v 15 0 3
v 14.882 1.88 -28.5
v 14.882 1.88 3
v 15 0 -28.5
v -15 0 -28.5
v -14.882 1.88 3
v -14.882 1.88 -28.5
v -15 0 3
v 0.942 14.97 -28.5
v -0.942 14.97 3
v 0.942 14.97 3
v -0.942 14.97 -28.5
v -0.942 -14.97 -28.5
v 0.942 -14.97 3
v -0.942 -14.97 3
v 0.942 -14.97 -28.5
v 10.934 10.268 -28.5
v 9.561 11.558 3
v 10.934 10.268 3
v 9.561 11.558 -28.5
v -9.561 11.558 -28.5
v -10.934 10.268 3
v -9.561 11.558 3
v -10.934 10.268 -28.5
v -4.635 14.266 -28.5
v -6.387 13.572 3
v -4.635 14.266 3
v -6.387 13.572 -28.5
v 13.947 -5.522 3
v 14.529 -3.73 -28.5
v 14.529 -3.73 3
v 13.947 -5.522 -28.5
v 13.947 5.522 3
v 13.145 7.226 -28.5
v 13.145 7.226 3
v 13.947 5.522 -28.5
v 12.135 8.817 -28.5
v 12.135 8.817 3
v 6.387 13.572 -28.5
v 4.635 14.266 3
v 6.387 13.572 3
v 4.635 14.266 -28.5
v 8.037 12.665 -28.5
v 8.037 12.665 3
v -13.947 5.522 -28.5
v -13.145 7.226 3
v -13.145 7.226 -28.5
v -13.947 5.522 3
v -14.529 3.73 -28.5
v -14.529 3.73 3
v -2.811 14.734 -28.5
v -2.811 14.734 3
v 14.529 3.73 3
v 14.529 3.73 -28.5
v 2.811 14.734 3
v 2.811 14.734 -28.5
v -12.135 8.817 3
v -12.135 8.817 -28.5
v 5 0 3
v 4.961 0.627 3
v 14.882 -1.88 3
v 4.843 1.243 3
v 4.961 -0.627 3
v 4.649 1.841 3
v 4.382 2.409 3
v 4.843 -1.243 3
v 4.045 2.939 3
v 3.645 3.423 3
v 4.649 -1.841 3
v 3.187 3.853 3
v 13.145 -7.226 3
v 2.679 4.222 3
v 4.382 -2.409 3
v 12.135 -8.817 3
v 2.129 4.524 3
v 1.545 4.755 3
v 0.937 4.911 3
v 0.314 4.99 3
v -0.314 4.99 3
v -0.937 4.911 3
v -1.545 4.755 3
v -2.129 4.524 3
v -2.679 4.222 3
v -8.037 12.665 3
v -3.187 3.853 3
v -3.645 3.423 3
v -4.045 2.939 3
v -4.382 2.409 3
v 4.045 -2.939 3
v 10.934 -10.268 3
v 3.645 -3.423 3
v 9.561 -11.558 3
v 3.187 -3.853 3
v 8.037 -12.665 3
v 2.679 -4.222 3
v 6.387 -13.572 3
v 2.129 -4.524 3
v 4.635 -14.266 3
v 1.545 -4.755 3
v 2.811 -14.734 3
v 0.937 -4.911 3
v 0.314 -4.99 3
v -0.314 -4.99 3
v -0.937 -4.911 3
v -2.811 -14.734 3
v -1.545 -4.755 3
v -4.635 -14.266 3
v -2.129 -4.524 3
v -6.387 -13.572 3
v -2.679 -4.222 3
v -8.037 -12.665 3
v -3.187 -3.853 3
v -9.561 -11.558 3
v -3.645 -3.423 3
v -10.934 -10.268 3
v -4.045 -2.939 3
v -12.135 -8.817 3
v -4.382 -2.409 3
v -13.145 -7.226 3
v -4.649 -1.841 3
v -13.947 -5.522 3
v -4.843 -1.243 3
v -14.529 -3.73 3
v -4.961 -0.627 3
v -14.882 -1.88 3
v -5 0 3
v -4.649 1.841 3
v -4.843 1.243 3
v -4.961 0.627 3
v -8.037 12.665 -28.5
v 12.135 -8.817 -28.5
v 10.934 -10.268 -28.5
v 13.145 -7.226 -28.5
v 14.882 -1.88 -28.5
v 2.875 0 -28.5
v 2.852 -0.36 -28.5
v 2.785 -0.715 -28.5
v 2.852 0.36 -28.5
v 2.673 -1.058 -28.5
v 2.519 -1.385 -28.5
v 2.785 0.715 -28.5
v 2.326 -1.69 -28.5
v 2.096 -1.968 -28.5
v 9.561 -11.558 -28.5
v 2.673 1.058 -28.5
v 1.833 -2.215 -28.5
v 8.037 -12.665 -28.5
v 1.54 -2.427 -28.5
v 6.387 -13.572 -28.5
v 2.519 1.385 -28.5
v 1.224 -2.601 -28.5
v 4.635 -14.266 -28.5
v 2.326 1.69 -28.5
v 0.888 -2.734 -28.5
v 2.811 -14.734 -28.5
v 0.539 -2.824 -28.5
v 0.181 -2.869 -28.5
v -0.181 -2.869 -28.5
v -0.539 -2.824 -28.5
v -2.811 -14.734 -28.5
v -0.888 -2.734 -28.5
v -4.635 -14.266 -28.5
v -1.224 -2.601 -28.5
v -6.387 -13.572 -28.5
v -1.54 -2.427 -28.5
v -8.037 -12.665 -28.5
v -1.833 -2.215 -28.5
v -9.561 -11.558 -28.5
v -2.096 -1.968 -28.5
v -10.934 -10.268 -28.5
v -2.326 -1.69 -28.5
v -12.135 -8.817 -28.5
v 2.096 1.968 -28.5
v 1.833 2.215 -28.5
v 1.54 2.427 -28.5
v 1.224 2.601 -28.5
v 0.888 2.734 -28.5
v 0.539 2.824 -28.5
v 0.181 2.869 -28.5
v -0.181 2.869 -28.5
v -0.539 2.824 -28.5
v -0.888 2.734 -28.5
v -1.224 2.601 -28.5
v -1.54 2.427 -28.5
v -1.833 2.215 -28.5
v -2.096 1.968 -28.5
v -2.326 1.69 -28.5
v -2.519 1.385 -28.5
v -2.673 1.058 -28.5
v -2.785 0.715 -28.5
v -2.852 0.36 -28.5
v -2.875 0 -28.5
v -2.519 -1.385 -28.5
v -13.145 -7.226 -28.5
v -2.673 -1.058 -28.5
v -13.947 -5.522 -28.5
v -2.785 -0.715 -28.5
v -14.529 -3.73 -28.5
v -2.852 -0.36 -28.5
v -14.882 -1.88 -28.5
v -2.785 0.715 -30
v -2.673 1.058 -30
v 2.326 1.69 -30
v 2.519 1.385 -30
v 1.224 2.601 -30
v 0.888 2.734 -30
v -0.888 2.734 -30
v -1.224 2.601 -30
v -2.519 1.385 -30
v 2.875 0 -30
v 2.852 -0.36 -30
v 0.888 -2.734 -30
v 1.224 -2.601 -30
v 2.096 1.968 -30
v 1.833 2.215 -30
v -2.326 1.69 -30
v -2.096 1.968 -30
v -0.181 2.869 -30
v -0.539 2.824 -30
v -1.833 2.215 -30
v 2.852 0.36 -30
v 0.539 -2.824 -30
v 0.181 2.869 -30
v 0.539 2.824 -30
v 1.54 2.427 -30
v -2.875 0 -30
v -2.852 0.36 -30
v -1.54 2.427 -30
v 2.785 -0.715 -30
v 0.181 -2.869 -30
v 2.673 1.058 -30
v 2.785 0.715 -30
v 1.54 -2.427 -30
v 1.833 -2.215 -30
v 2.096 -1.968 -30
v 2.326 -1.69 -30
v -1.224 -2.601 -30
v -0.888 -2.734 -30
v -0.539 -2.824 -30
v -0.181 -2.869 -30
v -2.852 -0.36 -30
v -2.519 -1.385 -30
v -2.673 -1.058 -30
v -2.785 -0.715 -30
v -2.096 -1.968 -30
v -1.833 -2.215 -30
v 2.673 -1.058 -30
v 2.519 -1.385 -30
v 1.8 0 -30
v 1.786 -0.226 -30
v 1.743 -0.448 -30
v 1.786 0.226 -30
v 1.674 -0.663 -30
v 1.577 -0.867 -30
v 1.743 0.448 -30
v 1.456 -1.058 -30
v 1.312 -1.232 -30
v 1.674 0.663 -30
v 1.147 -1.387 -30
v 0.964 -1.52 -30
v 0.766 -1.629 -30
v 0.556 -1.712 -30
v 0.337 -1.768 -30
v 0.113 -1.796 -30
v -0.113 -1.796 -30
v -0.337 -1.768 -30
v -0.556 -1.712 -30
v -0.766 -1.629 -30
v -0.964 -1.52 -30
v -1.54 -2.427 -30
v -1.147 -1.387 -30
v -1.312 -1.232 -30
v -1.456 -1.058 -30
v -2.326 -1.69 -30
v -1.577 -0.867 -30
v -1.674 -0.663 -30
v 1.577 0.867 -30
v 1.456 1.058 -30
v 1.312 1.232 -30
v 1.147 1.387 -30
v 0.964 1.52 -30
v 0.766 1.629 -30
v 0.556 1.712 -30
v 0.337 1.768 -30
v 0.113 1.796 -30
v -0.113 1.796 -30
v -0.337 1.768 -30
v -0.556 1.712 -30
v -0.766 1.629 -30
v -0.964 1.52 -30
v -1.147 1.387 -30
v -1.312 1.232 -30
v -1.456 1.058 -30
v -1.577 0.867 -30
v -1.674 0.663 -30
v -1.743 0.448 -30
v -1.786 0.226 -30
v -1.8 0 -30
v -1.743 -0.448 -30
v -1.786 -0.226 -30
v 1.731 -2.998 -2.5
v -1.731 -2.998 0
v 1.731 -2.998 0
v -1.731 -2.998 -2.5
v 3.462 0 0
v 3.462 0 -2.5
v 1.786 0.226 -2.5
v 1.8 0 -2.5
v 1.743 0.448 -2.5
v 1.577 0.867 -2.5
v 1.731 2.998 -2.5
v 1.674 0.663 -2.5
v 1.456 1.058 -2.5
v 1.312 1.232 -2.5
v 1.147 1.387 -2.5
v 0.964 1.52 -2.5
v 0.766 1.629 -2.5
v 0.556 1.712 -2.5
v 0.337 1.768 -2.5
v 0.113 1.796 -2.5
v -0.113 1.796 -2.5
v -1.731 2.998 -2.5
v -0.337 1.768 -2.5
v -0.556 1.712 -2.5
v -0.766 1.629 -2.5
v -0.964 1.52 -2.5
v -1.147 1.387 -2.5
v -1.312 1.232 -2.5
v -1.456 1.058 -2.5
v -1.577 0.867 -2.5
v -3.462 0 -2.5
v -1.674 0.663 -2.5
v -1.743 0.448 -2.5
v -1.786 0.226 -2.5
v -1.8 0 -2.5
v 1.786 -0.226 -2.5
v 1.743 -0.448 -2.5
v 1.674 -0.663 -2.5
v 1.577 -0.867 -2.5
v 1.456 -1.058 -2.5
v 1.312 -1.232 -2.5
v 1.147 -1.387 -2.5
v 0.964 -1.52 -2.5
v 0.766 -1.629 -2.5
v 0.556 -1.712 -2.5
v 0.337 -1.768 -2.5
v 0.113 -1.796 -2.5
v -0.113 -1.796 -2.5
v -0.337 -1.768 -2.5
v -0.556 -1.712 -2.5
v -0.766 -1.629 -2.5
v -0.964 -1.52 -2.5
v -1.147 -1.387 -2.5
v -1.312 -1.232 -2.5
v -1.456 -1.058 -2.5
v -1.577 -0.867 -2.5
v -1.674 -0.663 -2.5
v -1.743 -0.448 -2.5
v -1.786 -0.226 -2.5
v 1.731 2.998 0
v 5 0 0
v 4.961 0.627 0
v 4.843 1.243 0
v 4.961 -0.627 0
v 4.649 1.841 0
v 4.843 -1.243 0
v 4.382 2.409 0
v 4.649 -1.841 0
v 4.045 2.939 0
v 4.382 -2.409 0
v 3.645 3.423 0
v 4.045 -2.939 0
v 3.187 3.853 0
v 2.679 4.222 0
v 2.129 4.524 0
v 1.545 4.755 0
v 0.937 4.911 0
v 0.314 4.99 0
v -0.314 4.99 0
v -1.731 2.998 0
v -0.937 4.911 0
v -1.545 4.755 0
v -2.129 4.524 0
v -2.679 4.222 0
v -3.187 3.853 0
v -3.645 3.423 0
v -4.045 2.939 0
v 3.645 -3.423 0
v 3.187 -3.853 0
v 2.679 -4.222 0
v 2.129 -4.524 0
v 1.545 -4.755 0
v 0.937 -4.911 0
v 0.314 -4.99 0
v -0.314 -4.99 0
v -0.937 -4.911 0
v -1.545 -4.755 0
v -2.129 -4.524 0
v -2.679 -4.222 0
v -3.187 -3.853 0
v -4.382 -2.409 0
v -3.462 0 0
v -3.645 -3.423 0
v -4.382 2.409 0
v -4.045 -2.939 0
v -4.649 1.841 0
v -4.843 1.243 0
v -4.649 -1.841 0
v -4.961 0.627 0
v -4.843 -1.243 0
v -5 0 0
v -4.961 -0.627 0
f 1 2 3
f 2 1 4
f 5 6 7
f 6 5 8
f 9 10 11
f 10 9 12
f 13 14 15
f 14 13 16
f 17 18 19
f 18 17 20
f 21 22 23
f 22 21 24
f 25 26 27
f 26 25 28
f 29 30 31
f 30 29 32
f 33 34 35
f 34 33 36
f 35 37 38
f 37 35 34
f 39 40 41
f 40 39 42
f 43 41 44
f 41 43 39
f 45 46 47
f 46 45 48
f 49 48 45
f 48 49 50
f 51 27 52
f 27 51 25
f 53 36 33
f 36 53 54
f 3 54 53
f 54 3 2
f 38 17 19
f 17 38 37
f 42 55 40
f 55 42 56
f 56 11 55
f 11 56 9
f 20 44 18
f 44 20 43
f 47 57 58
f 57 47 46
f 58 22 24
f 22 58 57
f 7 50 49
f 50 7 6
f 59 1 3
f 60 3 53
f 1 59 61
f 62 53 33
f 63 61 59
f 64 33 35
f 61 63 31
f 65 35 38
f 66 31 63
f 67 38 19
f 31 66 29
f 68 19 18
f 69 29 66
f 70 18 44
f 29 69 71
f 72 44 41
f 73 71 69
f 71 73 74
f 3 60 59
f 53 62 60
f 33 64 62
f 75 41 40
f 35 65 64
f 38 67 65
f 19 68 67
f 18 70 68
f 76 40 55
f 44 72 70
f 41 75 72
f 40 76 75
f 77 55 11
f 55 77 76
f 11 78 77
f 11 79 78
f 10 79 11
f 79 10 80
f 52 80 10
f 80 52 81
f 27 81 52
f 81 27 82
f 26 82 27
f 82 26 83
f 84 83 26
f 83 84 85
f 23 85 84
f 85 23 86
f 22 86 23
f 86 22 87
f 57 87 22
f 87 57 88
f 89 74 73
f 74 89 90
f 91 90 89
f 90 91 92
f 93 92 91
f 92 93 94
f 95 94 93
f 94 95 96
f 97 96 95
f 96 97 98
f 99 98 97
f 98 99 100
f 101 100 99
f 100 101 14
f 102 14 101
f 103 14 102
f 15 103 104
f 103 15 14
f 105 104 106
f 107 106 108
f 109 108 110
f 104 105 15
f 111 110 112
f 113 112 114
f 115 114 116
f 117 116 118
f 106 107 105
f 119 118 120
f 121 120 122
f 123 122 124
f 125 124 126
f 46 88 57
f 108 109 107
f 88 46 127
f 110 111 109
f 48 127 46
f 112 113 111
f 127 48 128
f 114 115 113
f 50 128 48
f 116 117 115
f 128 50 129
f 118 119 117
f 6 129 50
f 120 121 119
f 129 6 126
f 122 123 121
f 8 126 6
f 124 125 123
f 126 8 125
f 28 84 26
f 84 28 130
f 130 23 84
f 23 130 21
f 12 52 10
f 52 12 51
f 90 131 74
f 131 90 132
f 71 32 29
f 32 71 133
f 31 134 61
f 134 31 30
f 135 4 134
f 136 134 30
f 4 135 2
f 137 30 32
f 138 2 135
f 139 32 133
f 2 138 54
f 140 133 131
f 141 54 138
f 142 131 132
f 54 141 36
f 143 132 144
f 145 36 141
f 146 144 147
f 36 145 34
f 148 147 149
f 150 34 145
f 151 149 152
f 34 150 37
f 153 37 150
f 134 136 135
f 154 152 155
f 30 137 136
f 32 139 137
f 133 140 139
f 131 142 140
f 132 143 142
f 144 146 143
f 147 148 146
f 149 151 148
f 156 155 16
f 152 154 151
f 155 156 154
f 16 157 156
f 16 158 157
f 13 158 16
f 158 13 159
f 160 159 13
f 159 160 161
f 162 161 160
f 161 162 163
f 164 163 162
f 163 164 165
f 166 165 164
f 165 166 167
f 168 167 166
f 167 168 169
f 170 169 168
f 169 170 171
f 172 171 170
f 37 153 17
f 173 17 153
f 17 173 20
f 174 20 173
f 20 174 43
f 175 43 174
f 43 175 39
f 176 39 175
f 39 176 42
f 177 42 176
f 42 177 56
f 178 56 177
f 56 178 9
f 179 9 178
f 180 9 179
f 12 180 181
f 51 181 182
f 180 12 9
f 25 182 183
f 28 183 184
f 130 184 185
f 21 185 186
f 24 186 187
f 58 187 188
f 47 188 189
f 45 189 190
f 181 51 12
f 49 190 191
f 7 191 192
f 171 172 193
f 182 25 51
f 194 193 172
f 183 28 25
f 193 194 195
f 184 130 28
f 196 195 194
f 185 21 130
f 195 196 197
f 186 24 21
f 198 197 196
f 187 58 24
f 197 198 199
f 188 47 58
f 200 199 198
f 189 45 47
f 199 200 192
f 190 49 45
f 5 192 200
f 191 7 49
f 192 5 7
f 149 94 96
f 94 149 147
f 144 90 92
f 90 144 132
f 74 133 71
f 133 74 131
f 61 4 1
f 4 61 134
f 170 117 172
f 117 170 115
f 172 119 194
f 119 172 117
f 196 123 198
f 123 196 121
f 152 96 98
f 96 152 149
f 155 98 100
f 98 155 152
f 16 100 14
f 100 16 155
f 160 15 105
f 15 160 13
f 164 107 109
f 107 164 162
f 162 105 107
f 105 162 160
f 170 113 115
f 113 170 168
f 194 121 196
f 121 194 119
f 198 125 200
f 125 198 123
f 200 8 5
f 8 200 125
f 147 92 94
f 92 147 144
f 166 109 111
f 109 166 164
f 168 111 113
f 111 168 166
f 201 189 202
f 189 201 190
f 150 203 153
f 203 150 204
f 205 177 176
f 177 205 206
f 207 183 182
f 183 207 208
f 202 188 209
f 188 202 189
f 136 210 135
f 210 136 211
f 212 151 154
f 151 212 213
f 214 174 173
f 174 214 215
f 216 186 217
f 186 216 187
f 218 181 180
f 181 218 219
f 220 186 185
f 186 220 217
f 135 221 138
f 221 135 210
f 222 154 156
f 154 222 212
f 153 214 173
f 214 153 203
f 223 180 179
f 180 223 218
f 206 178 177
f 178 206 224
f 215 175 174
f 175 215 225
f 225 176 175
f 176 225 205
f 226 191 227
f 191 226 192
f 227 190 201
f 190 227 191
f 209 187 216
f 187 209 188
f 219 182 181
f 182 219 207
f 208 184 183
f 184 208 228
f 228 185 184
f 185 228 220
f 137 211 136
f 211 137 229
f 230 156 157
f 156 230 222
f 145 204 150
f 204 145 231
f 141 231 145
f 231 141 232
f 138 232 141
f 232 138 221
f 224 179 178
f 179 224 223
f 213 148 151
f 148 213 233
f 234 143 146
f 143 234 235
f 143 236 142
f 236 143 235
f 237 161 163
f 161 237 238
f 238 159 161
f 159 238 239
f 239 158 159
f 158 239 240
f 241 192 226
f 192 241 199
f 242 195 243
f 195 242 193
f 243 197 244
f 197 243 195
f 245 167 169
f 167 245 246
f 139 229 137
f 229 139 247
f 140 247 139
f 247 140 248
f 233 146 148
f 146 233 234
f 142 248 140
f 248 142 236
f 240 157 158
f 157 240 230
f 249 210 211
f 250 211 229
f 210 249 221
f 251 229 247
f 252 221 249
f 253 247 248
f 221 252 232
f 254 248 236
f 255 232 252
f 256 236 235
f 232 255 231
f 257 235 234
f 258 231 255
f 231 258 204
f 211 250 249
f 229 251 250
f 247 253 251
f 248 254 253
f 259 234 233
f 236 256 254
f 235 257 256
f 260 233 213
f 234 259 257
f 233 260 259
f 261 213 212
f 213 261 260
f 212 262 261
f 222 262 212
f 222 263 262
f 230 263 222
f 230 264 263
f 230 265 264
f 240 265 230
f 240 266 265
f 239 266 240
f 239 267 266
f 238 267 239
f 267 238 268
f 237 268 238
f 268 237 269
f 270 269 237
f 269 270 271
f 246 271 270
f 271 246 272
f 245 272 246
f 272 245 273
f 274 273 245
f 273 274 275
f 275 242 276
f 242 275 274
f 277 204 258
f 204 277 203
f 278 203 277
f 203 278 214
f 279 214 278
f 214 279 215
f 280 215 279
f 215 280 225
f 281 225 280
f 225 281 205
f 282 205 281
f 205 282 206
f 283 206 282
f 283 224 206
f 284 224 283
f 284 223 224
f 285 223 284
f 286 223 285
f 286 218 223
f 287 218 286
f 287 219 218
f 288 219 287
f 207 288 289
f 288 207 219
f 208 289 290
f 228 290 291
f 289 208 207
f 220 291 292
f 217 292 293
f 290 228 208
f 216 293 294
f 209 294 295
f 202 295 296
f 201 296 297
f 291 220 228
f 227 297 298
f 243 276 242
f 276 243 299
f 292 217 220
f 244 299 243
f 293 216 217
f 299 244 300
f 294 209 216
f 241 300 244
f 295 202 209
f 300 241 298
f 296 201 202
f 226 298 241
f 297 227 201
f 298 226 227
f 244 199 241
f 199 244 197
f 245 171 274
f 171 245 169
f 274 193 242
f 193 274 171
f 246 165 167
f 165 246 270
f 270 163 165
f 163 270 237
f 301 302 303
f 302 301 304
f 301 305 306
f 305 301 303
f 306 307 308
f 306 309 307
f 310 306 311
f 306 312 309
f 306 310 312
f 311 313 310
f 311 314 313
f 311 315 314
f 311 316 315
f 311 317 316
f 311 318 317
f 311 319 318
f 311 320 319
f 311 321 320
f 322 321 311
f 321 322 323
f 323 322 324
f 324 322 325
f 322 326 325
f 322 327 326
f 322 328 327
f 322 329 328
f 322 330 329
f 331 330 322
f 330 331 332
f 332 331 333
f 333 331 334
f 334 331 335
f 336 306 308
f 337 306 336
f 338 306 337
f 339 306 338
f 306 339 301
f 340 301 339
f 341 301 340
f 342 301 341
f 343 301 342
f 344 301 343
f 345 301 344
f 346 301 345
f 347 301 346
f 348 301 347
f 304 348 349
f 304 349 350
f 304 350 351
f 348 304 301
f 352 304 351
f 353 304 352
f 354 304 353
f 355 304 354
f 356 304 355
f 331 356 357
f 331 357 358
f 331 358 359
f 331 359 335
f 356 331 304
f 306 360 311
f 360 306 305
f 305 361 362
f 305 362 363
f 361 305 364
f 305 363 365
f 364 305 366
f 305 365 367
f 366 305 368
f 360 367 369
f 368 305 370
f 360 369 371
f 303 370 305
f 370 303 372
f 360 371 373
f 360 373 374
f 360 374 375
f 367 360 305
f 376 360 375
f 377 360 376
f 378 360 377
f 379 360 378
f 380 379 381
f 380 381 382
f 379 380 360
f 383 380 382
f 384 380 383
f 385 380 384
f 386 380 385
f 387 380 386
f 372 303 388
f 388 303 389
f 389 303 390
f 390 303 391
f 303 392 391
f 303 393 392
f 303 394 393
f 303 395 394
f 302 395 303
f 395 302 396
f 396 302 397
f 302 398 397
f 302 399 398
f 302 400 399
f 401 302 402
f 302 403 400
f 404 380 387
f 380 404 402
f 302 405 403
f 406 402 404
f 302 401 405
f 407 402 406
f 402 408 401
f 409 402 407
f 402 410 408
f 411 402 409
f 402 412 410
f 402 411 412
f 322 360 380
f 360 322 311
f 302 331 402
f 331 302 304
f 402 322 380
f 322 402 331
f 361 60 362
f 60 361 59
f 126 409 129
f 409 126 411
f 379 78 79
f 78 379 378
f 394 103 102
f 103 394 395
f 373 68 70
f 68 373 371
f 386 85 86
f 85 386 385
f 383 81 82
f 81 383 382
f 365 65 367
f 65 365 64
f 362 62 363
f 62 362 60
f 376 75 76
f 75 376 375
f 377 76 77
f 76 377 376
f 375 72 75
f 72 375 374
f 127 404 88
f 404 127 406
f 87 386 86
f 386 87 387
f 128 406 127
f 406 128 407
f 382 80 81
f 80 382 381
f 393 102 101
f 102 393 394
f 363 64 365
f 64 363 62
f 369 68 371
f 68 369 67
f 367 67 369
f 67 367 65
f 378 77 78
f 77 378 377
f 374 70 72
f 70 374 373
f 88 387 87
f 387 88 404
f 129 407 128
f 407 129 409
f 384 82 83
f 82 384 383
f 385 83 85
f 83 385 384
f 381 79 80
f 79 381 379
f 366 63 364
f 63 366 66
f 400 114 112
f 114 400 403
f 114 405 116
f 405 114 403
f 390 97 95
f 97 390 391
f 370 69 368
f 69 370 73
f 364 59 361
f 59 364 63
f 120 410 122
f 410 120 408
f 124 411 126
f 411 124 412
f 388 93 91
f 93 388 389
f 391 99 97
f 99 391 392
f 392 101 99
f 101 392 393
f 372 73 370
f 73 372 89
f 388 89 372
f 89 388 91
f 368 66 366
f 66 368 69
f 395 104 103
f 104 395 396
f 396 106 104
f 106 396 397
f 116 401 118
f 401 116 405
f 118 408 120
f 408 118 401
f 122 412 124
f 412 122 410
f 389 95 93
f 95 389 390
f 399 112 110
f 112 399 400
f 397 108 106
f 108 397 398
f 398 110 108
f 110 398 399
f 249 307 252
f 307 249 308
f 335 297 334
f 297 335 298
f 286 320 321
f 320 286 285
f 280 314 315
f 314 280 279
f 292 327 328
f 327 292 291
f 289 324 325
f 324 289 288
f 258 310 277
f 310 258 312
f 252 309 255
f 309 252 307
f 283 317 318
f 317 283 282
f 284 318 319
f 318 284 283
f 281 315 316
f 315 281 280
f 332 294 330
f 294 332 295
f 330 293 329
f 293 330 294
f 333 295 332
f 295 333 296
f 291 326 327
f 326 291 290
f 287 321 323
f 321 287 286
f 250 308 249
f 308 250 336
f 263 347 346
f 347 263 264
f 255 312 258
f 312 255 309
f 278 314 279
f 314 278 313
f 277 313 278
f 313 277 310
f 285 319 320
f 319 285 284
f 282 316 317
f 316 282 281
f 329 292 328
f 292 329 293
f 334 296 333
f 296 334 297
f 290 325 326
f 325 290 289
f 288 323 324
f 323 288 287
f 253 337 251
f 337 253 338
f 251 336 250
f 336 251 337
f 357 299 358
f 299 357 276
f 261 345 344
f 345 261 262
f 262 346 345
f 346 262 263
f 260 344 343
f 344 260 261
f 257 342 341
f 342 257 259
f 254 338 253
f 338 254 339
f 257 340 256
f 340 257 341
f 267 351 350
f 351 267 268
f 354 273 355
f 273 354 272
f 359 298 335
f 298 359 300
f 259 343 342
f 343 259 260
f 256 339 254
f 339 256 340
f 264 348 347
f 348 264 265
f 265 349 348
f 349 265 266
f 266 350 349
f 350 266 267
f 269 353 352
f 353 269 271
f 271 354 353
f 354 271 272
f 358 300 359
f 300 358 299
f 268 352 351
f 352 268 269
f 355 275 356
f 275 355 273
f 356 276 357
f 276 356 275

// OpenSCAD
$fn = 50;

difference() {
	union() {
		translate(v = [0, 0, -28.5]) {
			cylinder(h = 31.5, r = 15.0);
		}
		#translate(v = [0, 0, -30.0]) {
			cylinder(h = 30, r = 2.875);
		}
	}
	union() {
		translate(v = [0, 0, 0]) {
			rotate(a = [0, 0, 0]) {
				difference() {
					union() {
						translate(v = [0, 0, -2.5]) {
							linear_extrude(height = 2.5) {
								polygon(points = [[3.4619999999999997, 0.0], [1.7310000000000003, 2.9981799479017264], [-1.7309999999999992, 2.9981799479017264], [-3.4619999999999997, 4.2397272186481365e-16], [-1.7310000000000014, -2.998179947901726], [1.7309999999999977, -2.9981799479017277]]);
							}
						}
					}
					union();
				}
			}
		}
		#cylinder(h = 3, r = 5.0);
		#translate(v = [0, 0, -100.0]) {
			cylinder(h = 200, r = 1.8);
		}
	}
}
